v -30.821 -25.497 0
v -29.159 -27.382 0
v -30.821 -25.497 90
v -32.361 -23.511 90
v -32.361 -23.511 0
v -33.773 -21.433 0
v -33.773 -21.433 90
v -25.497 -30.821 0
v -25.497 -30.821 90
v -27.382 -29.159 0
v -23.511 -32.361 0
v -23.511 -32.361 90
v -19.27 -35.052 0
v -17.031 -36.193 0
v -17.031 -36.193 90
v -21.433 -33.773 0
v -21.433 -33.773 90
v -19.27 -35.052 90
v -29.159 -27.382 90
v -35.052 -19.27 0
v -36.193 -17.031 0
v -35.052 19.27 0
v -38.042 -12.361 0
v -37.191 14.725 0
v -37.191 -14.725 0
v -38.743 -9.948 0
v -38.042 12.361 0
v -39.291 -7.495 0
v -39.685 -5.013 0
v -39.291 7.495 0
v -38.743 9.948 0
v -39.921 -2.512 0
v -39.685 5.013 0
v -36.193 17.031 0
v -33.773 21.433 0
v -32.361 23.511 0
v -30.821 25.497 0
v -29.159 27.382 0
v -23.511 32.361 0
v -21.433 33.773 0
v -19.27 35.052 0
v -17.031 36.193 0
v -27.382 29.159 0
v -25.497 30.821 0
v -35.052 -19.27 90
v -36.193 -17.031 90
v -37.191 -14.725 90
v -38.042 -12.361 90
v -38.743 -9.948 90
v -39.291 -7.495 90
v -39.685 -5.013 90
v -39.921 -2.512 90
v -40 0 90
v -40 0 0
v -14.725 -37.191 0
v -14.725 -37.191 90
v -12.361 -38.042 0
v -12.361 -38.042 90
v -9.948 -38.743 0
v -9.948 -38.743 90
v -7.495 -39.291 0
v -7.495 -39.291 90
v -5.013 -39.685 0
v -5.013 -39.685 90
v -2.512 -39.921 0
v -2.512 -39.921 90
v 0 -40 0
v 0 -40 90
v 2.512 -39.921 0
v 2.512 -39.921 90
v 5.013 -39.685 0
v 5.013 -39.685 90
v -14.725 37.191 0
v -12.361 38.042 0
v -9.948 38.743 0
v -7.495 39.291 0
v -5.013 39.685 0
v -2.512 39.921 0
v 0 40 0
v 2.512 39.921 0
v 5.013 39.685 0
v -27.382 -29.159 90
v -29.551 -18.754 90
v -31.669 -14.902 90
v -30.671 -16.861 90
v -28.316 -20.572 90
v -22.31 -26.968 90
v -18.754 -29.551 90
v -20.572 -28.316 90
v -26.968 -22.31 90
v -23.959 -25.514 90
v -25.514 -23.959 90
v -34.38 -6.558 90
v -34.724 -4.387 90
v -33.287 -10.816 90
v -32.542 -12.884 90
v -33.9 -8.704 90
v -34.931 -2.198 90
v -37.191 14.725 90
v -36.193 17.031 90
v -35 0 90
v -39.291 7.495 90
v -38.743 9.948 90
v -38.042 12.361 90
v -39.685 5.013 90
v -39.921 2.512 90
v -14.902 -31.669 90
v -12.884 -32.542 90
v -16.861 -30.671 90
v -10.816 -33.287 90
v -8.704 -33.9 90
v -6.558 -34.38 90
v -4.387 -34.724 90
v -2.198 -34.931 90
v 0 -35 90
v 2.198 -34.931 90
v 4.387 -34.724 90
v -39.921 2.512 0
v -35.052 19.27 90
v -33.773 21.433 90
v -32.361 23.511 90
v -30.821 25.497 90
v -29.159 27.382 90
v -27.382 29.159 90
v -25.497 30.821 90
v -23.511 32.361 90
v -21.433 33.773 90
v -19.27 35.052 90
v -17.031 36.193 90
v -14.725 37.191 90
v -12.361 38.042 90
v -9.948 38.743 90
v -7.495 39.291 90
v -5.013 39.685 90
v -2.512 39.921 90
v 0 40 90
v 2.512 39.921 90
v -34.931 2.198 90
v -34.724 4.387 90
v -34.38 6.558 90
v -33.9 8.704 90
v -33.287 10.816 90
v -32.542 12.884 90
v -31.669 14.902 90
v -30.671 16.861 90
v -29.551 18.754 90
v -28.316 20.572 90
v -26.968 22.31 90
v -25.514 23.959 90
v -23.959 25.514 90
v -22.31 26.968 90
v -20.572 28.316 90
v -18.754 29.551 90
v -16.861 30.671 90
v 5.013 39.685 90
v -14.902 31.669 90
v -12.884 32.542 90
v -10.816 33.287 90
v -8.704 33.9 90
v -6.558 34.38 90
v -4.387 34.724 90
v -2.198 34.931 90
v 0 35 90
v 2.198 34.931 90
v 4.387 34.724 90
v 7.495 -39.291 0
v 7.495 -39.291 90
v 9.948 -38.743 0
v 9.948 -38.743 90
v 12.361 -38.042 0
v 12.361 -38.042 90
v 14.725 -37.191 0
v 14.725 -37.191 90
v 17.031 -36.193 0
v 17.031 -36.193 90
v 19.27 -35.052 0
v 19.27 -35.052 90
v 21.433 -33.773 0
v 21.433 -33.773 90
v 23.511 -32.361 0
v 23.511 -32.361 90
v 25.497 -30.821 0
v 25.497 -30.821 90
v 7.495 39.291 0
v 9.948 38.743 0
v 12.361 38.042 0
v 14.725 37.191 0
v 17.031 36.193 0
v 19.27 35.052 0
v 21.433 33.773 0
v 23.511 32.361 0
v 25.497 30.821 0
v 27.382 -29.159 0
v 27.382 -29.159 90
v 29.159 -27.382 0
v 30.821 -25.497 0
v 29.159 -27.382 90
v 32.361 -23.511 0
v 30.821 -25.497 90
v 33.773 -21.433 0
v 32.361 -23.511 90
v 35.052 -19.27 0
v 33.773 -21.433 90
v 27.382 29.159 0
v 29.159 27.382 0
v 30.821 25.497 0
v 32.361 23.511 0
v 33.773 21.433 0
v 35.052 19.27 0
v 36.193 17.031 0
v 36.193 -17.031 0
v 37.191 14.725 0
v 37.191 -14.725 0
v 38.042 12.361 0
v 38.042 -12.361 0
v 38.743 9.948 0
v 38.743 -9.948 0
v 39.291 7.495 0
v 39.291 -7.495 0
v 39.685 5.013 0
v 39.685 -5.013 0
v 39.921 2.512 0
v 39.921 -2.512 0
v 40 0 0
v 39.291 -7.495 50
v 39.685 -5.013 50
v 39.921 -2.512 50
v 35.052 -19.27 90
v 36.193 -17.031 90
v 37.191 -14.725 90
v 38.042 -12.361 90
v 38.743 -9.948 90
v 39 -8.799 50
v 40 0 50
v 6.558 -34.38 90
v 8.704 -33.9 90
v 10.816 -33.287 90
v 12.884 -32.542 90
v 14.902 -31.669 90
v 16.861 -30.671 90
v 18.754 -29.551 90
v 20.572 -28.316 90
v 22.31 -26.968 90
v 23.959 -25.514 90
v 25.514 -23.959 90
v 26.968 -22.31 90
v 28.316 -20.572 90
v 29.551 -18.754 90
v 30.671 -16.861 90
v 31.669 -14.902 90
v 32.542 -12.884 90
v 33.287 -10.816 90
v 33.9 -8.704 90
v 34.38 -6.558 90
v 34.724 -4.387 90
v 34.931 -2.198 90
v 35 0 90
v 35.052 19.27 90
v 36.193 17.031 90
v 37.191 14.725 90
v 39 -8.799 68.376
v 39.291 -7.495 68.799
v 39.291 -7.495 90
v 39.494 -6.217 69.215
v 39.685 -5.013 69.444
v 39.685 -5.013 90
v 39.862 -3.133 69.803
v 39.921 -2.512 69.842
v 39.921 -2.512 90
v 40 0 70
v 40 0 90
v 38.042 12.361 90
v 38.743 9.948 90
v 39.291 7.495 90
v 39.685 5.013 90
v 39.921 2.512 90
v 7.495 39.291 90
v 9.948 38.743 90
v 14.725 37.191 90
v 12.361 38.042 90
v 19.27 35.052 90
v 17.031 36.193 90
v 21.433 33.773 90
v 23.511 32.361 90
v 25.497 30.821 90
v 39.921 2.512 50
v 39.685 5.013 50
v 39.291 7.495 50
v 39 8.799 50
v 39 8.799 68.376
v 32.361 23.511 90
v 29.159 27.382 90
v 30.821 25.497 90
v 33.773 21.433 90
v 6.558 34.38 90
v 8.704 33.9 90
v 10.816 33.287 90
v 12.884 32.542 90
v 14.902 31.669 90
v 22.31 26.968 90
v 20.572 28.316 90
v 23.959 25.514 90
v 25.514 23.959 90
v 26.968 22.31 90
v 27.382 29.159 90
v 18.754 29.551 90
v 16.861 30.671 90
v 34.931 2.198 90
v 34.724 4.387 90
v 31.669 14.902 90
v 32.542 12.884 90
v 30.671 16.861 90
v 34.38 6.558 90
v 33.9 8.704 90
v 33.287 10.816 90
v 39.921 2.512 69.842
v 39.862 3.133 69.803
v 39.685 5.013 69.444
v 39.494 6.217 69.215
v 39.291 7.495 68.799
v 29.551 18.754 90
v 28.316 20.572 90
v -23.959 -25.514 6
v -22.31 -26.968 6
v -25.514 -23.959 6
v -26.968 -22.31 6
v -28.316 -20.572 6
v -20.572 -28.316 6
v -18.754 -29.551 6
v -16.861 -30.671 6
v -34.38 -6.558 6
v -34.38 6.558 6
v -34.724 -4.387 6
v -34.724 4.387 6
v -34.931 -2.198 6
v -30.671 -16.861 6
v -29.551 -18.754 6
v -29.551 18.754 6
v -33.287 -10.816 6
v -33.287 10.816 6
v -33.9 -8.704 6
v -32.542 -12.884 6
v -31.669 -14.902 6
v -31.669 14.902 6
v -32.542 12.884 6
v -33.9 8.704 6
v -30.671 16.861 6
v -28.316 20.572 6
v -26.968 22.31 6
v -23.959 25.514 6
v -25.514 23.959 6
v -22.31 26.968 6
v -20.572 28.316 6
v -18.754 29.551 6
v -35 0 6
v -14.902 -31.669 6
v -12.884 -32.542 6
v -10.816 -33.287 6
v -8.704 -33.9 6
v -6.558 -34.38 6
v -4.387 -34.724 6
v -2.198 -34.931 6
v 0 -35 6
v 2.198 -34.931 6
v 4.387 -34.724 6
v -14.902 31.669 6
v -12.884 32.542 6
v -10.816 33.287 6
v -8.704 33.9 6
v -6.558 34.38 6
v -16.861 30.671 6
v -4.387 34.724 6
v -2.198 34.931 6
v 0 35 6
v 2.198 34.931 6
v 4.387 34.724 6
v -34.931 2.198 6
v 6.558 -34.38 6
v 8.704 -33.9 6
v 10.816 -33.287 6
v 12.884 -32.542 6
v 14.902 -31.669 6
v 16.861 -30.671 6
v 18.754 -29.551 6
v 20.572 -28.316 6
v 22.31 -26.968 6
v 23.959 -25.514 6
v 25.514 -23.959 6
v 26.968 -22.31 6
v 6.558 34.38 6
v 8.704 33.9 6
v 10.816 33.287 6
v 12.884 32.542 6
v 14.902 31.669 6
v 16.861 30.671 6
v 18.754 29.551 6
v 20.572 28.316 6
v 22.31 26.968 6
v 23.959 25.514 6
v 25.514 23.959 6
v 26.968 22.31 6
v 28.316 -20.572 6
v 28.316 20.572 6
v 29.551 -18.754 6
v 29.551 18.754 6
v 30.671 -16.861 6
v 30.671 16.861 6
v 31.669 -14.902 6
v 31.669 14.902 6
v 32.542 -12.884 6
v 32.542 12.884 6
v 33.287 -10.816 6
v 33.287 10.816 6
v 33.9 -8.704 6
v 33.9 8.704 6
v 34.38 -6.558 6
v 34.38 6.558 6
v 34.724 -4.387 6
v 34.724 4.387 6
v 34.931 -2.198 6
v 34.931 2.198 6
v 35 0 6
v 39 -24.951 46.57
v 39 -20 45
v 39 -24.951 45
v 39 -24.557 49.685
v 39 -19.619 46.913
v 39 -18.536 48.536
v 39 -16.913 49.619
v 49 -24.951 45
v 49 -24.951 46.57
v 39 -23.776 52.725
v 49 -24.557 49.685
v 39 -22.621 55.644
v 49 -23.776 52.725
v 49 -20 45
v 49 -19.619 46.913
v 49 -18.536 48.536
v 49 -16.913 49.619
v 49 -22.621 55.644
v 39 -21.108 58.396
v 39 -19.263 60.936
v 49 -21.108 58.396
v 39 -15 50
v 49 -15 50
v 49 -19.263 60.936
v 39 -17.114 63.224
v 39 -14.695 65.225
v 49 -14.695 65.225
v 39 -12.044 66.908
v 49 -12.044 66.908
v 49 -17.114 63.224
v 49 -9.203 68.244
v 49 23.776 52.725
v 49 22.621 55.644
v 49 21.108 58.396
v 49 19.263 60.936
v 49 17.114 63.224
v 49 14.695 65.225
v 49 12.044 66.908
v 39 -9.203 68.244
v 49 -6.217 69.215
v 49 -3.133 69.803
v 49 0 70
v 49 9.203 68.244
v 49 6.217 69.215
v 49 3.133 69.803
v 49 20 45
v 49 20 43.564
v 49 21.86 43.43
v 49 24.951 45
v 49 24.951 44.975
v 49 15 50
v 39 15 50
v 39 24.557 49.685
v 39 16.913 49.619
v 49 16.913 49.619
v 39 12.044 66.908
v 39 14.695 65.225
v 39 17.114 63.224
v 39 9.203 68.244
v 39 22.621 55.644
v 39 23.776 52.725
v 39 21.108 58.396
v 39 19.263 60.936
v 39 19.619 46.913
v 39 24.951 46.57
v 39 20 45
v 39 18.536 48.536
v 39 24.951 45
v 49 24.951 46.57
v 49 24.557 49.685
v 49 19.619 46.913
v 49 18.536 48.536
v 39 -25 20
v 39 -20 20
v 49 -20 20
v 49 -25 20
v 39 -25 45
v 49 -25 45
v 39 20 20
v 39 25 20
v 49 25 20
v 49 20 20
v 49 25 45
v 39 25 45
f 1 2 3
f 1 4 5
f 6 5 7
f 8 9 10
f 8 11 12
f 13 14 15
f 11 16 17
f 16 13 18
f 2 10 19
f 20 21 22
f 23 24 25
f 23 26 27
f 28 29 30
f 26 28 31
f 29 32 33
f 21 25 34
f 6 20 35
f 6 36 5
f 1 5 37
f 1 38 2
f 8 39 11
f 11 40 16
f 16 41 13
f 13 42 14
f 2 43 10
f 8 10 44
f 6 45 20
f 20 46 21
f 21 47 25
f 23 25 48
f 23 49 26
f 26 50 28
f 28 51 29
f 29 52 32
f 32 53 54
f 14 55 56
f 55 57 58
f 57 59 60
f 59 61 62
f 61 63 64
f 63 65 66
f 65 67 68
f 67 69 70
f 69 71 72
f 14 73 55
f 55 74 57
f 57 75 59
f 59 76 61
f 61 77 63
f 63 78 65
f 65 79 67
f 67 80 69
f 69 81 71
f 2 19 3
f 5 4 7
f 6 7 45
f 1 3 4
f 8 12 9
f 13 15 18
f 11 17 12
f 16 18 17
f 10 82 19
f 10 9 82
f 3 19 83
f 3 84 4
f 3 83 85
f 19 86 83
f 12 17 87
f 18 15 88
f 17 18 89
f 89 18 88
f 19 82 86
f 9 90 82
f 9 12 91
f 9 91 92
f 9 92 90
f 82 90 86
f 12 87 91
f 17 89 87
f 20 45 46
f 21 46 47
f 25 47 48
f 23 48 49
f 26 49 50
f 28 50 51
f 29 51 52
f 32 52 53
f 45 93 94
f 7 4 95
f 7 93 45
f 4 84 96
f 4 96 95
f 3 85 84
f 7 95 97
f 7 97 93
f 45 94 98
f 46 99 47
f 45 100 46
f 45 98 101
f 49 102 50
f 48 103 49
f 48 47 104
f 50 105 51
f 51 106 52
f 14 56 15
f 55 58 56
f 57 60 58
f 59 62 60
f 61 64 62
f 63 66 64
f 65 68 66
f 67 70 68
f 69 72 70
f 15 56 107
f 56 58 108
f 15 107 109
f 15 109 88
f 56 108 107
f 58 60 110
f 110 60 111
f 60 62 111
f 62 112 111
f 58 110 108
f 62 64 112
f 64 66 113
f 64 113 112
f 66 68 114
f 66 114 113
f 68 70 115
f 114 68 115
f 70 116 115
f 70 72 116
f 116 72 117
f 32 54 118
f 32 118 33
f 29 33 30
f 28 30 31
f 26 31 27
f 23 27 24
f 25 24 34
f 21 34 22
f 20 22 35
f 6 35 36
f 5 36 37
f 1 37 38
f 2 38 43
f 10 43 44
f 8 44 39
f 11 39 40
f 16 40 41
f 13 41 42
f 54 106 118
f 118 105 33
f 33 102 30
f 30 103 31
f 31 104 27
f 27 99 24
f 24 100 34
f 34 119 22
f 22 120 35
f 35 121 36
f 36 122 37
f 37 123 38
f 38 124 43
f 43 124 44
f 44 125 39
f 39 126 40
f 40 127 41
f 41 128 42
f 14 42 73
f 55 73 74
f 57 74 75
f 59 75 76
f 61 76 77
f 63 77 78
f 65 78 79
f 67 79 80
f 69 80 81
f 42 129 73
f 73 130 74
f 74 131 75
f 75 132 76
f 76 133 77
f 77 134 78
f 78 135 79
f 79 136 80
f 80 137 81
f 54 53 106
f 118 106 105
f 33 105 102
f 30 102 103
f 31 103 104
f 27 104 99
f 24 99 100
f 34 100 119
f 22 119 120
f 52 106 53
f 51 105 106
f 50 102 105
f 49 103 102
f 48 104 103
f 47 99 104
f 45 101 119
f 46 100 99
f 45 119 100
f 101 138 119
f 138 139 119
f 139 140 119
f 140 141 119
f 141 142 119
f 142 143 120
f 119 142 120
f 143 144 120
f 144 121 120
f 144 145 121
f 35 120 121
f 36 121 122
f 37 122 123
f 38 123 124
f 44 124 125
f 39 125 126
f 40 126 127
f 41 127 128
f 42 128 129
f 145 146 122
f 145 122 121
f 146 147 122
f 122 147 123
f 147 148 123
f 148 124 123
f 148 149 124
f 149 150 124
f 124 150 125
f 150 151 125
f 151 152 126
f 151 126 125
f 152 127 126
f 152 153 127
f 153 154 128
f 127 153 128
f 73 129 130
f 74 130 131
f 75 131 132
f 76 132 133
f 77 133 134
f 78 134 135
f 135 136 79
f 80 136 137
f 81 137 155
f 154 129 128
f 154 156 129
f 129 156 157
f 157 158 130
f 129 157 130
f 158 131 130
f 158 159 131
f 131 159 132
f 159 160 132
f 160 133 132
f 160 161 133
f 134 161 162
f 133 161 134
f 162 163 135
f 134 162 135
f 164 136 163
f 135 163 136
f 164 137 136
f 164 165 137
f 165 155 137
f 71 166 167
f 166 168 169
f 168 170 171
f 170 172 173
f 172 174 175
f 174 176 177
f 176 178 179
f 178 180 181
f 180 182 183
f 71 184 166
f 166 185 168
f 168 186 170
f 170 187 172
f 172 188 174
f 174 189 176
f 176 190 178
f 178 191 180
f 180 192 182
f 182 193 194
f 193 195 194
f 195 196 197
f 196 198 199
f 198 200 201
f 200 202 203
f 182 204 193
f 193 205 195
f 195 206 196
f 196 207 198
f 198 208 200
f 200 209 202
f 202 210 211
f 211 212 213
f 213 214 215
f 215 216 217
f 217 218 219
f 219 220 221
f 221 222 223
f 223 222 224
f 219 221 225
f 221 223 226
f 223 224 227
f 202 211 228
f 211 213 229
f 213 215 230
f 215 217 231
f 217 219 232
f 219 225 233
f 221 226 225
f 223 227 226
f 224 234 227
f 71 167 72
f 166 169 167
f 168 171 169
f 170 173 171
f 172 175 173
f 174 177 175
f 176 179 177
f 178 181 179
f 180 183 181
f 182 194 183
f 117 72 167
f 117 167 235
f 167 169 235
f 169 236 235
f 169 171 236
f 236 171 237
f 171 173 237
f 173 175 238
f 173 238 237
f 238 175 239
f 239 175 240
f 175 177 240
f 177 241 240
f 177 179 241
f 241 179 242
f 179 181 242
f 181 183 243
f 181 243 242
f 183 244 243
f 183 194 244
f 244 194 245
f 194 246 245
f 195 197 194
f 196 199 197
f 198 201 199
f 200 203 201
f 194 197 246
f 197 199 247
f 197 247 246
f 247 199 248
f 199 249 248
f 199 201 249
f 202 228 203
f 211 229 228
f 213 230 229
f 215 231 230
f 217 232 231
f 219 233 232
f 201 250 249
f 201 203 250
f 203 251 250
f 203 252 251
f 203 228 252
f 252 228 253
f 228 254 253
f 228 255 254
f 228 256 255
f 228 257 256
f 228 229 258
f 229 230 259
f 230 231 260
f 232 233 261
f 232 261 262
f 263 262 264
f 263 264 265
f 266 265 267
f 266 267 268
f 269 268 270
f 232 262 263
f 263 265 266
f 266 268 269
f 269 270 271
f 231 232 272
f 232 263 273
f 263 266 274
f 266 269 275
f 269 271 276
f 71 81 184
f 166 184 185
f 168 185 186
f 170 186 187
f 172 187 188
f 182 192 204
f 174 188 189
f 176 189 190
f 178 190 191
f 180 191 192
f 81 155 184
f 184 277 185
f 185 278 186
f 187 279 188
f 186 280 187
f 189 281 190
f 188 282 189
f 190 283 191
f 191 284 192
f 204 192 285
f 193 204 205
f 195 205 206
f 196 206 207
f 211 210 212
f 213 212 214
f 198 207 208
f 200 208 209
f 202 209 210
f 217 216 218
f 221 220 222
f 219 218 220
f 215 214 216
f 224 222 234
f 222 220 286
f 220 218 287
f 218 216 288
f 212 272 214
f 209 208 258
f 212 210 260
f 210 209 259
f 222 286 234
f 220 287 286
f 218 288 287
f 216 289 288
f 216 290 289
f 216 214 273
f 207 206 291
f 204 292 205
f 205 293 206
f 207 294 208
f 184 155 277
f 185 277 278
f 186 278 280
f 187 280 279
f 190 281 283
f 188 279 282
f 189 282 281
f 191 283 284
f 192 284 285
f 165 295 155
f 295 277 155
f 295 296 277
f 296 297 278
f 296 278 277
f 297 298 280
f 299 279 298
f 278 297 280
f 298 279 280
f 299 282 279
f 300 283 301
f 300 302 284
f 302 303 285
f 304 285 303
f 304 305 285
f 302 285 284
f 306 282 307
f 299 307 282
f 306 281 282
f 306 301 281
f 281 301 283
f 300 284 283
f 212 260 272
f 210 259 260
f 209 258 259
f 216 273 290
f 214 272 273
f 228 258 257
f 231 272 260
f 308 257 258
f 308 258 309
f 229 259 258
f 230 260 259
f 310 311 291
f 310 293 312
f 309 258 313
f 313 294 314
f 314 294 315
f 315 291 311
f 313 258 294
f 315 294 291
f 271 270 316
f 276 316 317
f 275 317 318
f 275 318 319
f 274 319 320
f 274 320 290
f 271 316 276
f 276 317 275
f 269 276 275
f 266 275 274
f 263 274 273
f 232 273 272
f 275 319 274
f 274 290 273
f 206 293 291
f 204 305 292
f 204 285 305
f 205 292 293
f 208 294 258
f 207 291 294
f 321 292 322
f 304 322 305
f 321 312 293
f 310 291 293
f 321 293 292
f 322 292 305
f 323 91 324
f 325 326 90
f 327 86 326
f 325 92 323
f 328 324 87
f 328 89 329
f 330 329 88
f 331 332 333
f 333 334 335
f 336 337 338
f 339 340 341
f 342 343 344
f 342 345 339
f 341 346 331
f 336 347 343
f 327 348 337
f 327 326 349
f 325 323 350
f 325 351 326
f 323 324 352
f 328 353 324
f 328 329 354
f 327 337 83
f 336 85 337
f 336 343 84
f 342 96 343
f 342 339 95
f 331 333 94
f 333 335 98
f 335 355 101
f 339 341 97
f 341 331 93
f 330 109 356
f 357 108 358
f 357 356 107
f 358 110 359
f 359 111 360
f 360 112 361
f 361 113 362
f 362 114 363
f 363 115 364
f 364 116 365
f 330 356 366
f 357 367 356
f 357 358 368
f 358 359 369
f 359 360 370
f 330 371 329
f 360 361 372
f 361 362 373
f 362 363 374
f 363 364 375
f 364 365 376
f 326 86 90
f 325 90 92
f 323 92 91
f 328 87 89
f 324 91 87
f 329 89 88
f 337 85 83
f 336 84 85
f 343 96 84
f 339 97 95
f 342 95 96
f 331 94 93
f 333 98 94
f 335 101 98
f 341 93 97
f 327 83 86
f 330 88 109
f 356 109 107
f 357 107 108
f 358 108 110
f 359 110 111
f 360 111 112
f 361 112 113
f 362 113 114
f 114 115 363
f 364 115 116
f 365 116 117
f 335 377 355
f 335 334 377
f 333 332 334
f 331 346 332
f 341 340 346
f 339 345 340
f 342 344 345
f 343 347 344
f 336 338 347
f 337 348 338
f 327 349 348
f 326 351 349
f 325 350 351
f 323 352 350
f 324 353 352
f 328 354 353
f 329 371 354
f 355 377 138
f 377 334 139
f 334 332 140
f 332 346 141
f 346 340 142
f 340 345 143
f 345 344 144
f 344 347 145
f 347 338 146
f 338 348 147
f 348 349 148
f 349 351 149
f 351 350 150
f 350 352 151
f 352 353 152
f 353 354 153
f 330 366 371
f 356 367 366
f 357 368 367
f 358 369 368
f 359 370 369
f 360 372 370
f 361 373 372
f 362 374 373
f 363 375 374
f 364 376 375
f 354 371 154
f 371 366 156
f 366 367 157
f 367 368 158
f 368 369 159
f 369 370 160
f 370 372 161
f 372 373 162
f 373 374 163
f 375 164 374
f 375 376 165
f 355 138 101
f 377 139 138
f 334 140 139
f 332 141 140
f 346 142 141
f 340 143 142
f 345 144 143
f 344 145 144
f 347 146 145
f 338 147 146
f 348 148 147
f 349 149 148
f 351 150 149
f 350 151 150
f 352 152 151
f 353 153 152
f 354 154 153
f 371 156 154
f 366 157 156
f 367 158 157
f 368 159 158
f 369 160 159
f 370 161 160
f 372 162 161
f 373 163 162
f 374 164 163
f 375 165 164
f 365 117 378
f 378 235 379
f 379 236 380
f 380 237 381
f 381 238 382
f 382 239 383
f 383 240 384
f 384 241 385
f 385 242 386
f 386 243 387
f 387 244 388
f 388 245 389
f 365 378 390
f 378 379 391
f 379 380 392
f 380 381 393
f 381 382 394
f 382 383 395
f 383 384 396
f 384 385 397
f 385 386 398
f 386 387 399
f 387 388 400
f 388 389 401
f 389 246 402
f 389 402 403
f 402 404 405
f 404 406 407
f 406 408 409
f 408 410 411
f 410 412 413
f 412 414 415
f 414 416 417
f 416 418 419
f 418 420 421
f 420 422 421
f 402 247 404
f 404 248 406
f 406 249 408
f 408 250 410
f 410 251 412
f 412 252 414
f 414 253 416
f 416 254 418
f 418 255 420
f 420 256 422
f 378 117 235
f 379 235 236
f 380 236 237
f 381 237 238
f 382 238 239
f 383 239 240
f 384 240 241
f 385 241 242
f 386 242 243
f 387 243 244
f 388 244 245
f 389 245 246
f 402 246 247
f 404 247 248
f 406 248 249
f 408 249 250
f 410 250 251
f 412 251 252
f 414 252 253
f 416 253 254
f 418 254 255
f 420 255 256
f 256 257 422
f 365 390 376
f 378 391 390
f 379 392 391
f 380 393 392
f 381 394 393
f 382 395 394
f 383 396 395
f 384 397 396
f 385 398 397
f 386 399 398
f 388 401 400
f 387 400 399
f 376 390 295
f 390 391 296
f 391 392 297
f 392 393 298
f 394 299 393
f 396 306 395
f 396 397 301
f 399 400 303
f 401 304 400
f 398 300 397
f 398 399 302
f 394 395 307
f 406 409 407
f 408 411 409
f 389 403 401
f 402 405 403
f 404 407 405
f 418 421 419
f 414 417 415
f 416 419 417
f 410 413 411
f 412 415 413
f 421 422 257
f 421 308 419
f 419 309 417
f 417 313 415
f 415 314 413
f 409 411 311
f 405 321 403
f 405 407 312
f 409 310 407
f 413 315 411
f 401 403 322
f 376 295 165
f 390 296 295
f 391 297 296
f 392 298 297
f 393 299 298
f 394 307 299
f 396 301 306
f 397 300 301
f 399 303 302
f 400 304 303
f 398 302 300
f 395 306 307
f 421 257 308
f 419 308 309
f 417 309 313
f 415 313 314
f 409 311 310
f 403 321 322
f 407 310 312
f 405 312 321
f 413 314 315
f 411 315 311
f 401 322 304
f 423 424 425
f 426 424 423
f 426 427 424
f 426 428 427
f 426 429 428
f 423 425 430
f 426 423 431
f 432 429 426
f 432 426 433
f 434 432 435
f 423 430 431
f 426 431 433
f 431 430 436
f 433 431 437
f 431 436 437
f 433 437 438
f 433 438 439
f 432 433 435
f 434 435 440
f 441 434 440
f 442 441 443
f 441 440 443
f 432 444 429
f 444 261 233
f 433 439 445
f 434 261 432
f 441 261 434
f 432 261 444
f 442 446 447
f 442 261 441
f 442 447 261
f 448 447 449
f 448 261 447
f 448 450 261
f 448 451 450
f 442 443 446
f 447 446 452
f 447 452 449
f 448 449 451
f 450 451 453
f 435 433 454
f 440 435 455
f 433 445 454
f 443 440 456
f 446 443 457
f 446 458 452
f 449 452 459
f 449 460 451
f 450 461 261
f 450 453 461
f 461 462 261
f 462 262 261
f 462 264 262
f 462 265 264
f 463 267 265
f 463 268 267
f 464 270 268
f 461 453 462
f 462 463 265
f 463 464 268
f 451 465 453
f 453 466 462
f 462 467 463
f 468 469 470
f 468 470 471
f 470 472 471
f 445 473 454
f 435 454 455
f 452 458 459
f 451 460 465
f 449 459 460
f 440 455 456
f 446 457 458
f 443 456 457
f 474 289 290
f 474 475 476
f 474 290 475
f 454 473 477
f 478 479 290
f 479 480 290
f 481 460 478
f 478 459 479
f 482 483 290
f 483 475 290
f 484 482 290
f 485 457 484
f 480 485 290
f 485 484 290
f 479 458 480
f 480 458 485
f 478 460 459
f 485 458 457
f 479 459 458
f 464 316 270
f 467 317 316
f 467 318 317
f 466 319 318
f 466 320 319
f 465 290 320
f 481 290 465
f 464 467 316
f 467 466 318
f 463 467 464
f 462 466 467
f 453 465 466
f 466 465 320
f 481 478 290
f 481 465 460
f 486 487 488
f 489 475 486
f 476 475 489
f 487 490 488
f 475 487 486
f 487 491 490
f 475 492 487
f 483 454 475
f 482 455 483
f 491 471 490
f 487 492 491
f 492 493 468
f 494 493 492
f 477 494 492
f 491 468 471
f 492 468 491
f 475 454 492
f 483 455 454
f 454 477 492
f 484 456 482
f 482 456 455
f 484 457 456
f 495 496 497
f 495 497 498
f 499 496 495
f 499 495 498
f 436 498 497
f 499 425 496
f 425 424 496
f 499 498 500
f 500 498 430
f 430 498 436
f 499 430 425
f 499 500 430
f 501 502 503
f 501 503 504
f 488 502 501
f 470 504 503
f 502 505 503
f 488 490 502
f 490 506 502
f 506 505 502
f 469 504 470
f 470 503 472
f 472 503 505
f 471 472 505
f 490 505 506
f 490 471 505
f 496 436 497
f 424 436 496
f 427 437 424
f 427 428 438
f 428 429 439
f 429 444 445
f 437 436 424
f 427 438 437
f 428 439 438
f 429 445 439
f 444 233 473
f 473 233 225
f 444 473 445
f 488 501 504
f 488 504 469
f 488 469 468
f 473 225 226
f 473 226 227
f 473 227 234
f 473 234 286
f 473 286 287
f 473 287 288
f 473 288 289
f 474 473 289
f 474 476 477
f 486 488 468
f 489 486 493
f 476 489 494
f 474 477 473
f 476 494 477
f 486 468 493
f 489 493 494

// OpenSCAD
// マグカップのパラメータ
outer_d = 80;
inner_d = 70;
height = 90;
wall = 5;
bottom = 6;

handle_h = 30;
handle_w = 25;
handle_thickness = 10;

// マグ本体の作成
module mug_body() {
    difference() {
        // 外形
        cylinder(d = outer_d, h = height, $fn = 100);
        // 内側のくり抜き
        translate([0, 0, bottom])
            cylinder(d = inner_d, h = height, $fn = 100);
    }
}

// 取手の作成
module handle() {
    translate([outer_d / 2 - 1, 0, height / 2]) {
        rotate([0, 90, 0]) {
            difference() {
                // 取手の外形 (D字型)
                union() {
                    cylinder(d = handle_h + handle_thickness * 2, h = handle_thickness, $fn = 50);
                    translate([0, -(handle_h + handle_thickness * 2) / 2, 0])
                        cube([ (handle_h + handle_thickness * 2) / 2, handle_h + handle_thickness * 2, handle_thickness]);
                }
                // 取手の内側の空洞
                translate([0, 0, -1])
                    linear_extrude(handle_thickness + 2)
                        hull() {
                            translate([0, handle_h / 2]) circle(d = handle_thickness);
                            translate([0, -handle_h / 2]) circle(d = handle_thickness);
                            translate([handle_w, handle_h / 2]) circle(d = handle_thickness);
                            translate([handle_w, -handle_h / 2]) circle(d = handle_thickness);
                        }
            }
        }
    }
}

// 本体と取手の結合
union() {
    mug_body();
    handle();
}
